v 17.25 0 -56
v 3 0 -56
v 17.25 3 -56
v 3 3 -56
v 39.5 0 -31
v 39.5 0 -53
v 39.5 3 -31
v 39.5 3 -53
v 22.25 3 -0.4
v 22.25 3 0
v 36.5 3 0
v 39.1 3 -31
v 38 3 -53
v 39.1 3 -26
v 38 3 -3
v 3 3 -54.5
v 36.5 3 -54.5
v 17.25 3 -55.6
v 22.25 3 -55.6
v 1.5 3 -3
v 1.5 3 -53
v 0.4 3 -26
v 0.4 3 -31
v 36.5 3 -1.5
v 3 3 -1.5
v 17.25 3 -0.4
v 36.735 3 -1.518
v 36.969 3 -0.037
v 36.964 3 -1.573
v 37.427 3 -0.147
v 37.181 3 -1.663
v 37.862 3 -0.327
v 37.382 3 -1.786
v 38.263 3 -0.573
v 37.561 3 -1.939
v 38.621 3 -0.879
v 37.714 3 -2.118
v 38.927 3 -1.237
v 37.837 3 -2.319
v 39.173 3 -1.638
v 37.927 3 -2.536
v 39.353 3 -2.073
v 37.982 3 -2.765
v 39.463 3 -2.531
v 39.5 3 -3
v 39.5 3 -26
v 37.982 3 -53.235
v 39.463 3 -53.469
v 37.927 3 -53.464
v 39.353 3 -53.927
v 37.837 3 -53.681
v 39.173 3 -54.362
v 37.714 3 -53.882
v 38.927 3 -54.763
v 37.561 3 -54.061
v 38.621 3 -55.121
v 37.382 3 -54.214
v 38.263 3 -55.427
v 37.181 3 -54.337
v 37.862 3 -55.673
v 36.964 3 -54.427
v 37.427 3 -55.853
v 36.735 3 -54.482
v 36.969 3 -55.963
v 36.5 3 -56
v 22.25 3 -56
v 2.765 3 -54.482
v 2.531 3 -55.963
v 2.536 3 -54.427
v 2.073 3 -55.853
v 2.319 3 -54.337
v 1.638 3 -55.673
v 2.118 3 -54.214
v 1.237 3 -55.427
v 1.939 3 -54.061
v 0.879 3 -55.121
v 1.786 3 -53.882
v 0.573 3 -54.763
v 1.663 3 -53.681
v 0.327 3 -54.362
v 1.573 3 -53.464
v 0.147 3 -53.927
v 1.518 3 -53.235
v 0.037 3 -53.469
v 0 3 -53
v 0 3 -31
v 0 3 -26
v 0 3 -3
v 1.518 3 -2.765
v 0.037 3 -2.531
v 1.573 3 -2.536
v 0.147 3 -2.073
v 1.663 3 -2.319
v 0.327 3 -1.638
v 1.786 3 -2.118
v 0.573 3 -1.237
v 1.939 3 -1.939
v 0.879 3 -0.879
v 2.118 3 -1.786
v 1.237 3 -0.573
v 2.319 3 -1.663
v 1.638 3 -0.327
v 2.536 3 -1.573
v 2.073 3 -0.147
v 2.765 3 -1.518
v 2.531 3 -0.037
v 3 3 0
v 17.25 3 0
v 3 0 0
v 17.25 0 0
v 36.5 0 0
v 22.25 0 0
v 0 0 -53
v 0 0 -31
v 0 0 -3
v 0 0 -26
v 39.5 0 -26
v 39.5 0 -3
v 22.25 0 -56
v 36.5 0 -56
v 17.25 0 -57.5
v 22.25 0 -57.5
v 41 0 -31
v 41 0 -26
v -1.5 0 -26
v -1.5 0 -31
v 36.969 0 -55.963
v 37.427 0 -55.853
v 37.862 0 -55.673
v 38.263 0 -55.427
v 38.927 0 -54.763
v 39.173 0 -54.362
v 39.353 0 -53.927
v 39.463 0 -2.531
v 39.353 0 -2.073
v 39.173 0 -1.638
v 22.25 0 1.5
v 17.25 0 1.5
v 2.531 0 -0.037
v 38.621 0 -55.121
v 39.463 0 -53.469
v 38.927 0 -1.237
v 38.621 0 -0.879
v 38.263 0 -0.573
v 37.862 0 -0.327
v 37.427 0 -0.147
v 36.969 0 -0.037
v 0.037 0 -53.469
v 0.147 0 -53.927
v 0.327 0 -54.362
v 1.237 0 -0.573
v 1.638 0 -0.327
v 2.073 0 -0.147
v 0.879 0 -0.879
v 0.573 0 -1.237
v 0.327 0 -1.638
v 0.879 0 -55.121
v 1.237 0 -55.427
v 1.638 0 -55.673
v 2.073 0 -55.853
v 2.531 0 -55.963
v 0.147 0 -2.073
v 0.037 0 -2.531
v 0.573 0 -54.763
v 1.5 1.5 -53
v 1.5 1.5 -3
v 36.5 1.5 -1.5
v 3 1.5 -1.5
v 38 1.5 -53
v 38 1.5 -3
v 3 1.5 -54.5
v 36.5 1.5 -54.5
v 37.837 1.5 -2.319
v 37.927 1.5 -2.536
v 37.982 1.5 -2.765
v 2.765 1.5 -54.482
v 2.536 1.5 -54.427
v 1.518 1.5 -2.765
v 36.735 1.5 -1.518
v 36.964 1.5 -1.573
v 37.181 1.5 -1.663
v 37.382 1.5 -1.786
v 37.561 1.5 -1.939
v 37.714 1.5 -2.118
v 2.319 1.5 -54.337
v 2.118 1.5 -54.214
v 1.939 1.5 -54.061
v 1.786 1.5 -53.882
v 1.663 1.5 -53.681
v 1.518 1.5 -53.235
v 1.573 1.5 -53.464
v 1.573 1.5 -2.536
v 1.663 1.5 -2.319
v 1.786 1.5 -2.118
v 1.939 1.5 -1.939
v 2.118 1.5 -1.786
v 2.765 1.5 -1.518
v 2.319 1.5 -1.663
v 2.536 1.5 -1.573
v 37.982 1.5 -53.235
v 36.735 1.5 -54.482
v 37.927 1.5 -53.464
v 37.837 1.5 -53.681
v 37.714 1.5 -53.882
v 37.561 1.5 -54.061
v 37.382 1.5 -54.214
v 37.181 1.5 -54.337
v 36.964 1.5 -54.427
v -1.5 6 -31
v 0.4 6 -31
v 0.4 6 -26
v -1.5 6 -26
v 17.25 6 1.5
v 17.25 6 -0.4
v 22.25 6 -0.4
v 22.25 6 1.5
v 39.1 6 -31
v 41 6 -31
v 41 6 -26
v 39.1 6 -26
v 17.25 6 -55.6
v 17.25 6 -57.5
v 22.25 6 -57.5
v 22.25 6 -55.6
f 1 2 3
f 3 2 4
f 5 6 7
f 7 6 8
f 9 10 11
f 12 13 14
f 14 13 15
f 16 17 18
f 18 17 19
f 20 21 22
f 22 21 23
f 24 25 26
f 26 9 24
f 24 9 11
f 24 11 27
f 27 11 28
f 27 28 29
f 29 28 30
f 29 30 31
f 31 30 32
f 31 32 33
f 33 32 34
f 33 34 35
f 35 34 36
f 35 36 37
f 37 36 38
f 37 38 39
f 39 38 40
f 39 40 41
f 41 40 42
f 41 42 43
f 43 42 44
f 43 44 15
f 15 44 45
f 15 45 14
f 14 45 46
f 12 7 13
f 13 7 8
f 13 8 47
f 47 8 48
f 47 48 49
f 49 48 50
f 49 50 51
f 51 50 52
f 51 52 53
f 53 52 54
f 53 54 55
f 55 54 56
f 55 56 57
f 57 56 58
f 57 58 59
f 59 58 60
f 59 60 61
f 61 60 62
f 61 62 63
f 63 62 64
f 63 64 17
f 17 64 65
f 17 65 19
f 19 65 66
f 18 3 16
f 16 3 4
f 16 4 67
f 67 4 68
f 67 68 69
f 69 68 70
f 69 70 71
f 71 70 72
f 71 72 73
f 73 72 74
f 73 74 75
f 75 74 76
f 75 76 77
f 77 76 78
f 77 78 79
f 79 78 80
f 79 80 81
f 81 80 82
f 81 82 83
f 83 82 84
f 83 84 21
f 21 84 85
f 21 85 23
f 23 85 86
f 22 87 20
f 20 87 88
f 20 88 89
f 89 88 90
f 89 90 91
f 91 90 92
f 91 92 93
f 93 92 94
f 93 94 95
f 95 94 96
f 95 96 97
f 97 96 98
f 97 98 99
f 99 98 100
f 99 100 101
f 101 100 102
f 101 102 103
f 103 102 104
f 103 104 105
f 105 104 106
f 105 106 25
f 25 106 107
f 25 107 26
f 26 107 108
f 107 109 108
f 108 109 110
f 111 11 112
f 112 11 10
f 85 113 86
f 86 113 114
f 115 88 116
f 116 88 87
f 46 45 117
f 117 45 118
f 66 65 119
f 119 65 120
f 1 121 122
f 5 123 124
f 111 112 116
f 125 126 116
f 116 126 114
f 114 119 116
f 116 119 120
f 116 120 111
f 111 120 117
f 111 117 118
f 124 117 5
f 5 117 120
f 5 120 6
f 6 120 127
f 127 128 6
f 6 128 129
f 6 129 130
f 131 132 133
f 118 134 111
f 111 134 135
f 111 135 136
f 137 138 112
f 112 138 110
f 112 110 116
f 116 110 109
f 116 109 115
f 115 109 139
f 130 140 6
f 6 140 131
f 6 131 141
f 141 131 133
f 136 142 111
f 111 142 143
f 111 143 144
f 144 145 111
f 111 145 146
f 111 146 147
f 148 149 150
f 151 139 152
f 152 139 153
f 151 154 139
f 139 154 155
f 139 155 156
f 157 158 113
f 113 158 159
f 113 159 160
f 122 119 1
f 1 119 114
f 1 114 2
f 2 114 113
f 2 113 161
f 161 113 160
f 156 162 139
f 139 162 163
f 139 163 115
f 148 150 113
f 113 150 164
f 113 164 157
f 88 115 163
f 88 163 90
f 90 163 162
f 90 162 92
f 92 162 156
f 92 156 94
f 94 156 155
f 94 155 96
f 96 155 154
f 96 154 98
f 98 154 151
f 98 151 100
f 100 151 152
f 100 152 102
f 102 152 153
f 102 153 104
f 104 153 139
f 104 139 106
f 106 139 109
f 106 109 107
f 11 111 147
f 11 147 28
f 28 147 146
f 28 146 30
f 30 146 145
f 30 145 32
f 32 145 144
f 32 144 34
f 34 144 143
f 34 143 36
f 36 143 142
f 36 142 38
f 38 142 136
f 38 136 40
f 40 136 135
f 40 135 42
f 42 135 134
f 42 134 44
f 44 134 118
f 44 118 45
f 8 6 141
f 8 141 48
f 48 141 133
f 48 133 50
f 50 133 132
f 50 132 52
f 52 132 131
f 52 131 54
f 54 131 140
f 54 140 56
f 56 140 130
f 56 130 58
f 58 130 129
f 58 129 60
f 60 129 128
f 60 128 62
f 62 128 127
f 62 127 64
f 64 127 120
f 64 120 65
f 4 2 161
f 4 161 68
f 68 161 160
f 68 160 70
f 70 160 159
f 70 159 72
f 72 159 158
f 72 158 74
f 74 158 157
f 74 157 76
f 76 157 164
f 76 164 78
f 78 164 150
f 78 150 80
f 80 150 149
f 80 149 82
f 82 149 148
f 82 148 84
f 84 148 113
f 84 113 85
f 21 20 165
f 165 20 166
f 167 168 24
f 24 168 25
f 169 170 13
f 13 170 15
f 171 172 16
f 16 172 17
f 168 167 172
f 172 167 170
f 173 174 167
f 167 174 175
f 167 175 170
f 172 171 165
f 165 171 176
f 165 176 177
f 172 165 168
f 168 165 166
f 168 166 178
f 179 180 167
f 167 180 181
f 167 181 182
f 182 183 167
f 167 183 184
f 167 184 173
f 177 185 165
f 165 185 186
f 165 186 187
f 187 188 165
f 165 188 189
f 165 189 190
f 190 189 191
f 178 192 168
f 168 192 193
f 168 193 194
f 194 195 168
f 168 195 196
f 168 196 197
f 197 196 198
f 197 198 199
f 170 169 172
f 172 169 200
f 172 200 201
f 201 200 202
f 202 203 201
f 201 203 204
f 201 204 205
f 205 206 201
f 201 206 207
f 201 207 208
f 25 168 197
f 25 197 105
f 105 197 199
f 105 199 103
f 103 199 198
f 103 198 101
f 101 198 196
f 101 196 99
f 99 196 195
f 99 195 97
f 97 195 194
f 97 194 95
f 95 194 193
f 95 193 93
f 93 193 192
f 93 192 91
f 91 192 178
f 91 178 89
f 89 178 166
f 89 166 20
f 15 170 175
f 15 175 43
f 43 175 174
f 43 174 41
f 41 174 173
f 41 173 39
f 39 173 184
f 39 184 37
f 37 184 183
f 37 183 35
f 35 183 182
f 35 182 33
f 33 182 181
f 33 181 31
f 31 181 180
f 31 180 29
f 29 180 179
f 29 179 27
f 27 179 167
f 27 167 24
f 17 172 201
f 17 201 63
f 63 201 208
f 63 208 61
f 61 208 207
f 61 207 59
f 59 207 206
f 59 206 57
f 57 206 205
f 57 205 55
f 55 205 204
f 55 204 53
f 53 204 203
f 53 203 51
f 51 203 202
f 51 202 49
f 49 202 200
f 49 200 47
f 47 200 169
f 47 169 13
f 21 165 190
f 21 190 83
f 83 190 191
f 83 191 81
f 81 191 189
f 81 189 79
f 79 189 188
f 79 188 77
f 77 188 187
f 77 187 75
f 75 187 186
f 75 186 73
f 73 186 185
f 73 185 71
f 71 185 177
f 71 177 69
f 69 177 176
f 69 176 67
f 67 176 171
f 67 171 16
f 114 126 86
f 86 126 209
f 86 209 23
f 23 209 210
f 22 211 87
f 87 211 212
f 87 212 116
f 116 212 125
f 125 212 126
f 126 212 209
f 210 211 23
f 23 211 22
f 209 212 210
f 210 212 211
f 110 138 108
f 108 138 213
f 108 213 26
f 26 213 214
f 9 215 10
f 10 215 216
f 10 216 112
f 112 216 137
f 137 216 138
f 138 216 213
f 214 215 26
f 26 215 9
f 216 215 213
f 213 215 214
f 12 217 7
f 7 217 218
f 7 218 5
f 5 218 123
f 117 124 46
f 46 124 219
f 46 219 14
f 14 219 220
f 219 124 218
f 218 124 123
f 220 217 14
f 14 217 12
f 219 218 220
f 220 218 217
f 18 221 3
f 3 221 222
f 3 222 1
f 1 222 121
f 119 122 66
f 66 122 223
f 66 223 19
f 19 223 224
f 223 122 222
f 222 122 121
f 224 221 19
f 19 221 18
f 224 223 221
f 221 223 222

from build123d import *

# Parameters (mm, degrees)
SKETCH1_W           = 39.5
SKETCH1_H           = 56
BOSS_EXTRUDE1_DEPTH = 3
FILLET1_R           = 3
SHELL1_T            = -1.5
SKETCH2_W           = 5
SKETCH2_H           = 3
BOSS_EXTRUDE2_DEPTH = 1.5
SKETCH3_W           = 1.9
SKETCH3_H           = 5
BOSS_EXTRUDE3_DEPTH = 3
SKETCH8_W           = 5
SKETCH8_H           = 3
BOSS_EXTRUDE5_DEPTH = 1.5
SKETCH9_W           = 5
SKETCH9_H           = 1.9
BOSS_EXTRUDE6_DEPTH = 3


with BuildPart() as part:
    # Sketch1 → Boss-Extrude1 (new body)
    with BuildSketch(Plane(origin=(0, 0, 0), x_dir=(1, 0, 0), z_dir=(0, 1, 0))):
        with Locations((19.75, 28)):
            Rectangle(SKETCH1_W, SKETCH1_H)
    extrude(amount=BOSS_EXTRUDE1_DEPTH)

    # Fillet1
    fillet1_edges = [part.edges().sort_by_distance(p)[0] for p in [
        (0, 1.5, -56),
        (39.5, 1.5, -56),
        (39.5, 1.5, 0),
        (0, 1.5, 0),
    ]]
    fillet(fillet1_edges, radius=FILLET1_R)

    # Shell1
    shell1_openings = [part.faces().sort_by_distance(p)[0] for p in [
        (19.75, 3, -28),
    ]]
    offset(amount=SHELL1_T, openings=shell1_openings, kind=Kind.INTERSECTION)

    # Sketch2 → Boss-Extrude2 (add)
    with BuildSketch(Plane.ZY):
        with Locations((-28.5, 1.5)):
            Rectangle(SKETCH2_W, SKETCH2_H)
    boss_extrude2 = extrude(amount=BOSS_EXTRUDE2_DEPTH)

    # Sketch3 → Boss-Extrude3 (add)
    with BuildSketch(Plane(origin=(0, 3, 0), x_dir=(1, 0, 0), z_dir=(0, 1, 0))):
        with Locations((-0.55, 28.5)):
            Rectangle(SKETCH3_W, SKETCH3_H)
    boss_extrude3 = extrude(amount=BOSS_EXTRUDE3_DEPTH)

    # Sketch8 → Boss-Extrude5 (add)
    with BuildSketch(Plane.XY):
        with Locations((19.75, 1.5)):
            Rectangle(SKETCH8_W, SKETCH8_H)
    boss_extrude5 = extrude(amount=BOSS_EXTRUDE5_DEPTH)

    # Sketch9 → Boss-Extrude6 (add)
    with BuildSketch(Plane(origin=(0, 3, 0), x_dir=(1, 0, 0), z_dir=(0, 1, 0))):
        with Locations((19.75, -0.55)):
            Rectangle(SKETCH9_W, SKETCH9_H)
    boss_extrude6 = extrude(amount=BOSS_EXTRUDE6_DEPTH)

    # Mirror3: Boss-Extrude2, Boss-Extrude3 across plane
    add(boss_extrude2.mirror(Plane(origin=(19.75, 0, 0), x_dir=(0, 0, 1), z_dir=(1, 0, 0))))
    add(boss_extrude3.mirror(Plane(origin=(19.75, 0, 0), x_dir=(0, 0, 1), z_dir=(1, 0, 0))))

    # Mirror4: Boss-Extrude5, Boss-Extrude6 across plane
    add(boss_extrude5.mirror(Plane(origin=(0, 0, -28), x_dir=(1, 0, 0), z_dir=(0, 0, -1))))
    add(boss_extrude6.mirror(Plane(origin=(0, 0, -28), x_dir=(1, 0, 0), z_dir=(0, 0, -1))))


solid = part.part
